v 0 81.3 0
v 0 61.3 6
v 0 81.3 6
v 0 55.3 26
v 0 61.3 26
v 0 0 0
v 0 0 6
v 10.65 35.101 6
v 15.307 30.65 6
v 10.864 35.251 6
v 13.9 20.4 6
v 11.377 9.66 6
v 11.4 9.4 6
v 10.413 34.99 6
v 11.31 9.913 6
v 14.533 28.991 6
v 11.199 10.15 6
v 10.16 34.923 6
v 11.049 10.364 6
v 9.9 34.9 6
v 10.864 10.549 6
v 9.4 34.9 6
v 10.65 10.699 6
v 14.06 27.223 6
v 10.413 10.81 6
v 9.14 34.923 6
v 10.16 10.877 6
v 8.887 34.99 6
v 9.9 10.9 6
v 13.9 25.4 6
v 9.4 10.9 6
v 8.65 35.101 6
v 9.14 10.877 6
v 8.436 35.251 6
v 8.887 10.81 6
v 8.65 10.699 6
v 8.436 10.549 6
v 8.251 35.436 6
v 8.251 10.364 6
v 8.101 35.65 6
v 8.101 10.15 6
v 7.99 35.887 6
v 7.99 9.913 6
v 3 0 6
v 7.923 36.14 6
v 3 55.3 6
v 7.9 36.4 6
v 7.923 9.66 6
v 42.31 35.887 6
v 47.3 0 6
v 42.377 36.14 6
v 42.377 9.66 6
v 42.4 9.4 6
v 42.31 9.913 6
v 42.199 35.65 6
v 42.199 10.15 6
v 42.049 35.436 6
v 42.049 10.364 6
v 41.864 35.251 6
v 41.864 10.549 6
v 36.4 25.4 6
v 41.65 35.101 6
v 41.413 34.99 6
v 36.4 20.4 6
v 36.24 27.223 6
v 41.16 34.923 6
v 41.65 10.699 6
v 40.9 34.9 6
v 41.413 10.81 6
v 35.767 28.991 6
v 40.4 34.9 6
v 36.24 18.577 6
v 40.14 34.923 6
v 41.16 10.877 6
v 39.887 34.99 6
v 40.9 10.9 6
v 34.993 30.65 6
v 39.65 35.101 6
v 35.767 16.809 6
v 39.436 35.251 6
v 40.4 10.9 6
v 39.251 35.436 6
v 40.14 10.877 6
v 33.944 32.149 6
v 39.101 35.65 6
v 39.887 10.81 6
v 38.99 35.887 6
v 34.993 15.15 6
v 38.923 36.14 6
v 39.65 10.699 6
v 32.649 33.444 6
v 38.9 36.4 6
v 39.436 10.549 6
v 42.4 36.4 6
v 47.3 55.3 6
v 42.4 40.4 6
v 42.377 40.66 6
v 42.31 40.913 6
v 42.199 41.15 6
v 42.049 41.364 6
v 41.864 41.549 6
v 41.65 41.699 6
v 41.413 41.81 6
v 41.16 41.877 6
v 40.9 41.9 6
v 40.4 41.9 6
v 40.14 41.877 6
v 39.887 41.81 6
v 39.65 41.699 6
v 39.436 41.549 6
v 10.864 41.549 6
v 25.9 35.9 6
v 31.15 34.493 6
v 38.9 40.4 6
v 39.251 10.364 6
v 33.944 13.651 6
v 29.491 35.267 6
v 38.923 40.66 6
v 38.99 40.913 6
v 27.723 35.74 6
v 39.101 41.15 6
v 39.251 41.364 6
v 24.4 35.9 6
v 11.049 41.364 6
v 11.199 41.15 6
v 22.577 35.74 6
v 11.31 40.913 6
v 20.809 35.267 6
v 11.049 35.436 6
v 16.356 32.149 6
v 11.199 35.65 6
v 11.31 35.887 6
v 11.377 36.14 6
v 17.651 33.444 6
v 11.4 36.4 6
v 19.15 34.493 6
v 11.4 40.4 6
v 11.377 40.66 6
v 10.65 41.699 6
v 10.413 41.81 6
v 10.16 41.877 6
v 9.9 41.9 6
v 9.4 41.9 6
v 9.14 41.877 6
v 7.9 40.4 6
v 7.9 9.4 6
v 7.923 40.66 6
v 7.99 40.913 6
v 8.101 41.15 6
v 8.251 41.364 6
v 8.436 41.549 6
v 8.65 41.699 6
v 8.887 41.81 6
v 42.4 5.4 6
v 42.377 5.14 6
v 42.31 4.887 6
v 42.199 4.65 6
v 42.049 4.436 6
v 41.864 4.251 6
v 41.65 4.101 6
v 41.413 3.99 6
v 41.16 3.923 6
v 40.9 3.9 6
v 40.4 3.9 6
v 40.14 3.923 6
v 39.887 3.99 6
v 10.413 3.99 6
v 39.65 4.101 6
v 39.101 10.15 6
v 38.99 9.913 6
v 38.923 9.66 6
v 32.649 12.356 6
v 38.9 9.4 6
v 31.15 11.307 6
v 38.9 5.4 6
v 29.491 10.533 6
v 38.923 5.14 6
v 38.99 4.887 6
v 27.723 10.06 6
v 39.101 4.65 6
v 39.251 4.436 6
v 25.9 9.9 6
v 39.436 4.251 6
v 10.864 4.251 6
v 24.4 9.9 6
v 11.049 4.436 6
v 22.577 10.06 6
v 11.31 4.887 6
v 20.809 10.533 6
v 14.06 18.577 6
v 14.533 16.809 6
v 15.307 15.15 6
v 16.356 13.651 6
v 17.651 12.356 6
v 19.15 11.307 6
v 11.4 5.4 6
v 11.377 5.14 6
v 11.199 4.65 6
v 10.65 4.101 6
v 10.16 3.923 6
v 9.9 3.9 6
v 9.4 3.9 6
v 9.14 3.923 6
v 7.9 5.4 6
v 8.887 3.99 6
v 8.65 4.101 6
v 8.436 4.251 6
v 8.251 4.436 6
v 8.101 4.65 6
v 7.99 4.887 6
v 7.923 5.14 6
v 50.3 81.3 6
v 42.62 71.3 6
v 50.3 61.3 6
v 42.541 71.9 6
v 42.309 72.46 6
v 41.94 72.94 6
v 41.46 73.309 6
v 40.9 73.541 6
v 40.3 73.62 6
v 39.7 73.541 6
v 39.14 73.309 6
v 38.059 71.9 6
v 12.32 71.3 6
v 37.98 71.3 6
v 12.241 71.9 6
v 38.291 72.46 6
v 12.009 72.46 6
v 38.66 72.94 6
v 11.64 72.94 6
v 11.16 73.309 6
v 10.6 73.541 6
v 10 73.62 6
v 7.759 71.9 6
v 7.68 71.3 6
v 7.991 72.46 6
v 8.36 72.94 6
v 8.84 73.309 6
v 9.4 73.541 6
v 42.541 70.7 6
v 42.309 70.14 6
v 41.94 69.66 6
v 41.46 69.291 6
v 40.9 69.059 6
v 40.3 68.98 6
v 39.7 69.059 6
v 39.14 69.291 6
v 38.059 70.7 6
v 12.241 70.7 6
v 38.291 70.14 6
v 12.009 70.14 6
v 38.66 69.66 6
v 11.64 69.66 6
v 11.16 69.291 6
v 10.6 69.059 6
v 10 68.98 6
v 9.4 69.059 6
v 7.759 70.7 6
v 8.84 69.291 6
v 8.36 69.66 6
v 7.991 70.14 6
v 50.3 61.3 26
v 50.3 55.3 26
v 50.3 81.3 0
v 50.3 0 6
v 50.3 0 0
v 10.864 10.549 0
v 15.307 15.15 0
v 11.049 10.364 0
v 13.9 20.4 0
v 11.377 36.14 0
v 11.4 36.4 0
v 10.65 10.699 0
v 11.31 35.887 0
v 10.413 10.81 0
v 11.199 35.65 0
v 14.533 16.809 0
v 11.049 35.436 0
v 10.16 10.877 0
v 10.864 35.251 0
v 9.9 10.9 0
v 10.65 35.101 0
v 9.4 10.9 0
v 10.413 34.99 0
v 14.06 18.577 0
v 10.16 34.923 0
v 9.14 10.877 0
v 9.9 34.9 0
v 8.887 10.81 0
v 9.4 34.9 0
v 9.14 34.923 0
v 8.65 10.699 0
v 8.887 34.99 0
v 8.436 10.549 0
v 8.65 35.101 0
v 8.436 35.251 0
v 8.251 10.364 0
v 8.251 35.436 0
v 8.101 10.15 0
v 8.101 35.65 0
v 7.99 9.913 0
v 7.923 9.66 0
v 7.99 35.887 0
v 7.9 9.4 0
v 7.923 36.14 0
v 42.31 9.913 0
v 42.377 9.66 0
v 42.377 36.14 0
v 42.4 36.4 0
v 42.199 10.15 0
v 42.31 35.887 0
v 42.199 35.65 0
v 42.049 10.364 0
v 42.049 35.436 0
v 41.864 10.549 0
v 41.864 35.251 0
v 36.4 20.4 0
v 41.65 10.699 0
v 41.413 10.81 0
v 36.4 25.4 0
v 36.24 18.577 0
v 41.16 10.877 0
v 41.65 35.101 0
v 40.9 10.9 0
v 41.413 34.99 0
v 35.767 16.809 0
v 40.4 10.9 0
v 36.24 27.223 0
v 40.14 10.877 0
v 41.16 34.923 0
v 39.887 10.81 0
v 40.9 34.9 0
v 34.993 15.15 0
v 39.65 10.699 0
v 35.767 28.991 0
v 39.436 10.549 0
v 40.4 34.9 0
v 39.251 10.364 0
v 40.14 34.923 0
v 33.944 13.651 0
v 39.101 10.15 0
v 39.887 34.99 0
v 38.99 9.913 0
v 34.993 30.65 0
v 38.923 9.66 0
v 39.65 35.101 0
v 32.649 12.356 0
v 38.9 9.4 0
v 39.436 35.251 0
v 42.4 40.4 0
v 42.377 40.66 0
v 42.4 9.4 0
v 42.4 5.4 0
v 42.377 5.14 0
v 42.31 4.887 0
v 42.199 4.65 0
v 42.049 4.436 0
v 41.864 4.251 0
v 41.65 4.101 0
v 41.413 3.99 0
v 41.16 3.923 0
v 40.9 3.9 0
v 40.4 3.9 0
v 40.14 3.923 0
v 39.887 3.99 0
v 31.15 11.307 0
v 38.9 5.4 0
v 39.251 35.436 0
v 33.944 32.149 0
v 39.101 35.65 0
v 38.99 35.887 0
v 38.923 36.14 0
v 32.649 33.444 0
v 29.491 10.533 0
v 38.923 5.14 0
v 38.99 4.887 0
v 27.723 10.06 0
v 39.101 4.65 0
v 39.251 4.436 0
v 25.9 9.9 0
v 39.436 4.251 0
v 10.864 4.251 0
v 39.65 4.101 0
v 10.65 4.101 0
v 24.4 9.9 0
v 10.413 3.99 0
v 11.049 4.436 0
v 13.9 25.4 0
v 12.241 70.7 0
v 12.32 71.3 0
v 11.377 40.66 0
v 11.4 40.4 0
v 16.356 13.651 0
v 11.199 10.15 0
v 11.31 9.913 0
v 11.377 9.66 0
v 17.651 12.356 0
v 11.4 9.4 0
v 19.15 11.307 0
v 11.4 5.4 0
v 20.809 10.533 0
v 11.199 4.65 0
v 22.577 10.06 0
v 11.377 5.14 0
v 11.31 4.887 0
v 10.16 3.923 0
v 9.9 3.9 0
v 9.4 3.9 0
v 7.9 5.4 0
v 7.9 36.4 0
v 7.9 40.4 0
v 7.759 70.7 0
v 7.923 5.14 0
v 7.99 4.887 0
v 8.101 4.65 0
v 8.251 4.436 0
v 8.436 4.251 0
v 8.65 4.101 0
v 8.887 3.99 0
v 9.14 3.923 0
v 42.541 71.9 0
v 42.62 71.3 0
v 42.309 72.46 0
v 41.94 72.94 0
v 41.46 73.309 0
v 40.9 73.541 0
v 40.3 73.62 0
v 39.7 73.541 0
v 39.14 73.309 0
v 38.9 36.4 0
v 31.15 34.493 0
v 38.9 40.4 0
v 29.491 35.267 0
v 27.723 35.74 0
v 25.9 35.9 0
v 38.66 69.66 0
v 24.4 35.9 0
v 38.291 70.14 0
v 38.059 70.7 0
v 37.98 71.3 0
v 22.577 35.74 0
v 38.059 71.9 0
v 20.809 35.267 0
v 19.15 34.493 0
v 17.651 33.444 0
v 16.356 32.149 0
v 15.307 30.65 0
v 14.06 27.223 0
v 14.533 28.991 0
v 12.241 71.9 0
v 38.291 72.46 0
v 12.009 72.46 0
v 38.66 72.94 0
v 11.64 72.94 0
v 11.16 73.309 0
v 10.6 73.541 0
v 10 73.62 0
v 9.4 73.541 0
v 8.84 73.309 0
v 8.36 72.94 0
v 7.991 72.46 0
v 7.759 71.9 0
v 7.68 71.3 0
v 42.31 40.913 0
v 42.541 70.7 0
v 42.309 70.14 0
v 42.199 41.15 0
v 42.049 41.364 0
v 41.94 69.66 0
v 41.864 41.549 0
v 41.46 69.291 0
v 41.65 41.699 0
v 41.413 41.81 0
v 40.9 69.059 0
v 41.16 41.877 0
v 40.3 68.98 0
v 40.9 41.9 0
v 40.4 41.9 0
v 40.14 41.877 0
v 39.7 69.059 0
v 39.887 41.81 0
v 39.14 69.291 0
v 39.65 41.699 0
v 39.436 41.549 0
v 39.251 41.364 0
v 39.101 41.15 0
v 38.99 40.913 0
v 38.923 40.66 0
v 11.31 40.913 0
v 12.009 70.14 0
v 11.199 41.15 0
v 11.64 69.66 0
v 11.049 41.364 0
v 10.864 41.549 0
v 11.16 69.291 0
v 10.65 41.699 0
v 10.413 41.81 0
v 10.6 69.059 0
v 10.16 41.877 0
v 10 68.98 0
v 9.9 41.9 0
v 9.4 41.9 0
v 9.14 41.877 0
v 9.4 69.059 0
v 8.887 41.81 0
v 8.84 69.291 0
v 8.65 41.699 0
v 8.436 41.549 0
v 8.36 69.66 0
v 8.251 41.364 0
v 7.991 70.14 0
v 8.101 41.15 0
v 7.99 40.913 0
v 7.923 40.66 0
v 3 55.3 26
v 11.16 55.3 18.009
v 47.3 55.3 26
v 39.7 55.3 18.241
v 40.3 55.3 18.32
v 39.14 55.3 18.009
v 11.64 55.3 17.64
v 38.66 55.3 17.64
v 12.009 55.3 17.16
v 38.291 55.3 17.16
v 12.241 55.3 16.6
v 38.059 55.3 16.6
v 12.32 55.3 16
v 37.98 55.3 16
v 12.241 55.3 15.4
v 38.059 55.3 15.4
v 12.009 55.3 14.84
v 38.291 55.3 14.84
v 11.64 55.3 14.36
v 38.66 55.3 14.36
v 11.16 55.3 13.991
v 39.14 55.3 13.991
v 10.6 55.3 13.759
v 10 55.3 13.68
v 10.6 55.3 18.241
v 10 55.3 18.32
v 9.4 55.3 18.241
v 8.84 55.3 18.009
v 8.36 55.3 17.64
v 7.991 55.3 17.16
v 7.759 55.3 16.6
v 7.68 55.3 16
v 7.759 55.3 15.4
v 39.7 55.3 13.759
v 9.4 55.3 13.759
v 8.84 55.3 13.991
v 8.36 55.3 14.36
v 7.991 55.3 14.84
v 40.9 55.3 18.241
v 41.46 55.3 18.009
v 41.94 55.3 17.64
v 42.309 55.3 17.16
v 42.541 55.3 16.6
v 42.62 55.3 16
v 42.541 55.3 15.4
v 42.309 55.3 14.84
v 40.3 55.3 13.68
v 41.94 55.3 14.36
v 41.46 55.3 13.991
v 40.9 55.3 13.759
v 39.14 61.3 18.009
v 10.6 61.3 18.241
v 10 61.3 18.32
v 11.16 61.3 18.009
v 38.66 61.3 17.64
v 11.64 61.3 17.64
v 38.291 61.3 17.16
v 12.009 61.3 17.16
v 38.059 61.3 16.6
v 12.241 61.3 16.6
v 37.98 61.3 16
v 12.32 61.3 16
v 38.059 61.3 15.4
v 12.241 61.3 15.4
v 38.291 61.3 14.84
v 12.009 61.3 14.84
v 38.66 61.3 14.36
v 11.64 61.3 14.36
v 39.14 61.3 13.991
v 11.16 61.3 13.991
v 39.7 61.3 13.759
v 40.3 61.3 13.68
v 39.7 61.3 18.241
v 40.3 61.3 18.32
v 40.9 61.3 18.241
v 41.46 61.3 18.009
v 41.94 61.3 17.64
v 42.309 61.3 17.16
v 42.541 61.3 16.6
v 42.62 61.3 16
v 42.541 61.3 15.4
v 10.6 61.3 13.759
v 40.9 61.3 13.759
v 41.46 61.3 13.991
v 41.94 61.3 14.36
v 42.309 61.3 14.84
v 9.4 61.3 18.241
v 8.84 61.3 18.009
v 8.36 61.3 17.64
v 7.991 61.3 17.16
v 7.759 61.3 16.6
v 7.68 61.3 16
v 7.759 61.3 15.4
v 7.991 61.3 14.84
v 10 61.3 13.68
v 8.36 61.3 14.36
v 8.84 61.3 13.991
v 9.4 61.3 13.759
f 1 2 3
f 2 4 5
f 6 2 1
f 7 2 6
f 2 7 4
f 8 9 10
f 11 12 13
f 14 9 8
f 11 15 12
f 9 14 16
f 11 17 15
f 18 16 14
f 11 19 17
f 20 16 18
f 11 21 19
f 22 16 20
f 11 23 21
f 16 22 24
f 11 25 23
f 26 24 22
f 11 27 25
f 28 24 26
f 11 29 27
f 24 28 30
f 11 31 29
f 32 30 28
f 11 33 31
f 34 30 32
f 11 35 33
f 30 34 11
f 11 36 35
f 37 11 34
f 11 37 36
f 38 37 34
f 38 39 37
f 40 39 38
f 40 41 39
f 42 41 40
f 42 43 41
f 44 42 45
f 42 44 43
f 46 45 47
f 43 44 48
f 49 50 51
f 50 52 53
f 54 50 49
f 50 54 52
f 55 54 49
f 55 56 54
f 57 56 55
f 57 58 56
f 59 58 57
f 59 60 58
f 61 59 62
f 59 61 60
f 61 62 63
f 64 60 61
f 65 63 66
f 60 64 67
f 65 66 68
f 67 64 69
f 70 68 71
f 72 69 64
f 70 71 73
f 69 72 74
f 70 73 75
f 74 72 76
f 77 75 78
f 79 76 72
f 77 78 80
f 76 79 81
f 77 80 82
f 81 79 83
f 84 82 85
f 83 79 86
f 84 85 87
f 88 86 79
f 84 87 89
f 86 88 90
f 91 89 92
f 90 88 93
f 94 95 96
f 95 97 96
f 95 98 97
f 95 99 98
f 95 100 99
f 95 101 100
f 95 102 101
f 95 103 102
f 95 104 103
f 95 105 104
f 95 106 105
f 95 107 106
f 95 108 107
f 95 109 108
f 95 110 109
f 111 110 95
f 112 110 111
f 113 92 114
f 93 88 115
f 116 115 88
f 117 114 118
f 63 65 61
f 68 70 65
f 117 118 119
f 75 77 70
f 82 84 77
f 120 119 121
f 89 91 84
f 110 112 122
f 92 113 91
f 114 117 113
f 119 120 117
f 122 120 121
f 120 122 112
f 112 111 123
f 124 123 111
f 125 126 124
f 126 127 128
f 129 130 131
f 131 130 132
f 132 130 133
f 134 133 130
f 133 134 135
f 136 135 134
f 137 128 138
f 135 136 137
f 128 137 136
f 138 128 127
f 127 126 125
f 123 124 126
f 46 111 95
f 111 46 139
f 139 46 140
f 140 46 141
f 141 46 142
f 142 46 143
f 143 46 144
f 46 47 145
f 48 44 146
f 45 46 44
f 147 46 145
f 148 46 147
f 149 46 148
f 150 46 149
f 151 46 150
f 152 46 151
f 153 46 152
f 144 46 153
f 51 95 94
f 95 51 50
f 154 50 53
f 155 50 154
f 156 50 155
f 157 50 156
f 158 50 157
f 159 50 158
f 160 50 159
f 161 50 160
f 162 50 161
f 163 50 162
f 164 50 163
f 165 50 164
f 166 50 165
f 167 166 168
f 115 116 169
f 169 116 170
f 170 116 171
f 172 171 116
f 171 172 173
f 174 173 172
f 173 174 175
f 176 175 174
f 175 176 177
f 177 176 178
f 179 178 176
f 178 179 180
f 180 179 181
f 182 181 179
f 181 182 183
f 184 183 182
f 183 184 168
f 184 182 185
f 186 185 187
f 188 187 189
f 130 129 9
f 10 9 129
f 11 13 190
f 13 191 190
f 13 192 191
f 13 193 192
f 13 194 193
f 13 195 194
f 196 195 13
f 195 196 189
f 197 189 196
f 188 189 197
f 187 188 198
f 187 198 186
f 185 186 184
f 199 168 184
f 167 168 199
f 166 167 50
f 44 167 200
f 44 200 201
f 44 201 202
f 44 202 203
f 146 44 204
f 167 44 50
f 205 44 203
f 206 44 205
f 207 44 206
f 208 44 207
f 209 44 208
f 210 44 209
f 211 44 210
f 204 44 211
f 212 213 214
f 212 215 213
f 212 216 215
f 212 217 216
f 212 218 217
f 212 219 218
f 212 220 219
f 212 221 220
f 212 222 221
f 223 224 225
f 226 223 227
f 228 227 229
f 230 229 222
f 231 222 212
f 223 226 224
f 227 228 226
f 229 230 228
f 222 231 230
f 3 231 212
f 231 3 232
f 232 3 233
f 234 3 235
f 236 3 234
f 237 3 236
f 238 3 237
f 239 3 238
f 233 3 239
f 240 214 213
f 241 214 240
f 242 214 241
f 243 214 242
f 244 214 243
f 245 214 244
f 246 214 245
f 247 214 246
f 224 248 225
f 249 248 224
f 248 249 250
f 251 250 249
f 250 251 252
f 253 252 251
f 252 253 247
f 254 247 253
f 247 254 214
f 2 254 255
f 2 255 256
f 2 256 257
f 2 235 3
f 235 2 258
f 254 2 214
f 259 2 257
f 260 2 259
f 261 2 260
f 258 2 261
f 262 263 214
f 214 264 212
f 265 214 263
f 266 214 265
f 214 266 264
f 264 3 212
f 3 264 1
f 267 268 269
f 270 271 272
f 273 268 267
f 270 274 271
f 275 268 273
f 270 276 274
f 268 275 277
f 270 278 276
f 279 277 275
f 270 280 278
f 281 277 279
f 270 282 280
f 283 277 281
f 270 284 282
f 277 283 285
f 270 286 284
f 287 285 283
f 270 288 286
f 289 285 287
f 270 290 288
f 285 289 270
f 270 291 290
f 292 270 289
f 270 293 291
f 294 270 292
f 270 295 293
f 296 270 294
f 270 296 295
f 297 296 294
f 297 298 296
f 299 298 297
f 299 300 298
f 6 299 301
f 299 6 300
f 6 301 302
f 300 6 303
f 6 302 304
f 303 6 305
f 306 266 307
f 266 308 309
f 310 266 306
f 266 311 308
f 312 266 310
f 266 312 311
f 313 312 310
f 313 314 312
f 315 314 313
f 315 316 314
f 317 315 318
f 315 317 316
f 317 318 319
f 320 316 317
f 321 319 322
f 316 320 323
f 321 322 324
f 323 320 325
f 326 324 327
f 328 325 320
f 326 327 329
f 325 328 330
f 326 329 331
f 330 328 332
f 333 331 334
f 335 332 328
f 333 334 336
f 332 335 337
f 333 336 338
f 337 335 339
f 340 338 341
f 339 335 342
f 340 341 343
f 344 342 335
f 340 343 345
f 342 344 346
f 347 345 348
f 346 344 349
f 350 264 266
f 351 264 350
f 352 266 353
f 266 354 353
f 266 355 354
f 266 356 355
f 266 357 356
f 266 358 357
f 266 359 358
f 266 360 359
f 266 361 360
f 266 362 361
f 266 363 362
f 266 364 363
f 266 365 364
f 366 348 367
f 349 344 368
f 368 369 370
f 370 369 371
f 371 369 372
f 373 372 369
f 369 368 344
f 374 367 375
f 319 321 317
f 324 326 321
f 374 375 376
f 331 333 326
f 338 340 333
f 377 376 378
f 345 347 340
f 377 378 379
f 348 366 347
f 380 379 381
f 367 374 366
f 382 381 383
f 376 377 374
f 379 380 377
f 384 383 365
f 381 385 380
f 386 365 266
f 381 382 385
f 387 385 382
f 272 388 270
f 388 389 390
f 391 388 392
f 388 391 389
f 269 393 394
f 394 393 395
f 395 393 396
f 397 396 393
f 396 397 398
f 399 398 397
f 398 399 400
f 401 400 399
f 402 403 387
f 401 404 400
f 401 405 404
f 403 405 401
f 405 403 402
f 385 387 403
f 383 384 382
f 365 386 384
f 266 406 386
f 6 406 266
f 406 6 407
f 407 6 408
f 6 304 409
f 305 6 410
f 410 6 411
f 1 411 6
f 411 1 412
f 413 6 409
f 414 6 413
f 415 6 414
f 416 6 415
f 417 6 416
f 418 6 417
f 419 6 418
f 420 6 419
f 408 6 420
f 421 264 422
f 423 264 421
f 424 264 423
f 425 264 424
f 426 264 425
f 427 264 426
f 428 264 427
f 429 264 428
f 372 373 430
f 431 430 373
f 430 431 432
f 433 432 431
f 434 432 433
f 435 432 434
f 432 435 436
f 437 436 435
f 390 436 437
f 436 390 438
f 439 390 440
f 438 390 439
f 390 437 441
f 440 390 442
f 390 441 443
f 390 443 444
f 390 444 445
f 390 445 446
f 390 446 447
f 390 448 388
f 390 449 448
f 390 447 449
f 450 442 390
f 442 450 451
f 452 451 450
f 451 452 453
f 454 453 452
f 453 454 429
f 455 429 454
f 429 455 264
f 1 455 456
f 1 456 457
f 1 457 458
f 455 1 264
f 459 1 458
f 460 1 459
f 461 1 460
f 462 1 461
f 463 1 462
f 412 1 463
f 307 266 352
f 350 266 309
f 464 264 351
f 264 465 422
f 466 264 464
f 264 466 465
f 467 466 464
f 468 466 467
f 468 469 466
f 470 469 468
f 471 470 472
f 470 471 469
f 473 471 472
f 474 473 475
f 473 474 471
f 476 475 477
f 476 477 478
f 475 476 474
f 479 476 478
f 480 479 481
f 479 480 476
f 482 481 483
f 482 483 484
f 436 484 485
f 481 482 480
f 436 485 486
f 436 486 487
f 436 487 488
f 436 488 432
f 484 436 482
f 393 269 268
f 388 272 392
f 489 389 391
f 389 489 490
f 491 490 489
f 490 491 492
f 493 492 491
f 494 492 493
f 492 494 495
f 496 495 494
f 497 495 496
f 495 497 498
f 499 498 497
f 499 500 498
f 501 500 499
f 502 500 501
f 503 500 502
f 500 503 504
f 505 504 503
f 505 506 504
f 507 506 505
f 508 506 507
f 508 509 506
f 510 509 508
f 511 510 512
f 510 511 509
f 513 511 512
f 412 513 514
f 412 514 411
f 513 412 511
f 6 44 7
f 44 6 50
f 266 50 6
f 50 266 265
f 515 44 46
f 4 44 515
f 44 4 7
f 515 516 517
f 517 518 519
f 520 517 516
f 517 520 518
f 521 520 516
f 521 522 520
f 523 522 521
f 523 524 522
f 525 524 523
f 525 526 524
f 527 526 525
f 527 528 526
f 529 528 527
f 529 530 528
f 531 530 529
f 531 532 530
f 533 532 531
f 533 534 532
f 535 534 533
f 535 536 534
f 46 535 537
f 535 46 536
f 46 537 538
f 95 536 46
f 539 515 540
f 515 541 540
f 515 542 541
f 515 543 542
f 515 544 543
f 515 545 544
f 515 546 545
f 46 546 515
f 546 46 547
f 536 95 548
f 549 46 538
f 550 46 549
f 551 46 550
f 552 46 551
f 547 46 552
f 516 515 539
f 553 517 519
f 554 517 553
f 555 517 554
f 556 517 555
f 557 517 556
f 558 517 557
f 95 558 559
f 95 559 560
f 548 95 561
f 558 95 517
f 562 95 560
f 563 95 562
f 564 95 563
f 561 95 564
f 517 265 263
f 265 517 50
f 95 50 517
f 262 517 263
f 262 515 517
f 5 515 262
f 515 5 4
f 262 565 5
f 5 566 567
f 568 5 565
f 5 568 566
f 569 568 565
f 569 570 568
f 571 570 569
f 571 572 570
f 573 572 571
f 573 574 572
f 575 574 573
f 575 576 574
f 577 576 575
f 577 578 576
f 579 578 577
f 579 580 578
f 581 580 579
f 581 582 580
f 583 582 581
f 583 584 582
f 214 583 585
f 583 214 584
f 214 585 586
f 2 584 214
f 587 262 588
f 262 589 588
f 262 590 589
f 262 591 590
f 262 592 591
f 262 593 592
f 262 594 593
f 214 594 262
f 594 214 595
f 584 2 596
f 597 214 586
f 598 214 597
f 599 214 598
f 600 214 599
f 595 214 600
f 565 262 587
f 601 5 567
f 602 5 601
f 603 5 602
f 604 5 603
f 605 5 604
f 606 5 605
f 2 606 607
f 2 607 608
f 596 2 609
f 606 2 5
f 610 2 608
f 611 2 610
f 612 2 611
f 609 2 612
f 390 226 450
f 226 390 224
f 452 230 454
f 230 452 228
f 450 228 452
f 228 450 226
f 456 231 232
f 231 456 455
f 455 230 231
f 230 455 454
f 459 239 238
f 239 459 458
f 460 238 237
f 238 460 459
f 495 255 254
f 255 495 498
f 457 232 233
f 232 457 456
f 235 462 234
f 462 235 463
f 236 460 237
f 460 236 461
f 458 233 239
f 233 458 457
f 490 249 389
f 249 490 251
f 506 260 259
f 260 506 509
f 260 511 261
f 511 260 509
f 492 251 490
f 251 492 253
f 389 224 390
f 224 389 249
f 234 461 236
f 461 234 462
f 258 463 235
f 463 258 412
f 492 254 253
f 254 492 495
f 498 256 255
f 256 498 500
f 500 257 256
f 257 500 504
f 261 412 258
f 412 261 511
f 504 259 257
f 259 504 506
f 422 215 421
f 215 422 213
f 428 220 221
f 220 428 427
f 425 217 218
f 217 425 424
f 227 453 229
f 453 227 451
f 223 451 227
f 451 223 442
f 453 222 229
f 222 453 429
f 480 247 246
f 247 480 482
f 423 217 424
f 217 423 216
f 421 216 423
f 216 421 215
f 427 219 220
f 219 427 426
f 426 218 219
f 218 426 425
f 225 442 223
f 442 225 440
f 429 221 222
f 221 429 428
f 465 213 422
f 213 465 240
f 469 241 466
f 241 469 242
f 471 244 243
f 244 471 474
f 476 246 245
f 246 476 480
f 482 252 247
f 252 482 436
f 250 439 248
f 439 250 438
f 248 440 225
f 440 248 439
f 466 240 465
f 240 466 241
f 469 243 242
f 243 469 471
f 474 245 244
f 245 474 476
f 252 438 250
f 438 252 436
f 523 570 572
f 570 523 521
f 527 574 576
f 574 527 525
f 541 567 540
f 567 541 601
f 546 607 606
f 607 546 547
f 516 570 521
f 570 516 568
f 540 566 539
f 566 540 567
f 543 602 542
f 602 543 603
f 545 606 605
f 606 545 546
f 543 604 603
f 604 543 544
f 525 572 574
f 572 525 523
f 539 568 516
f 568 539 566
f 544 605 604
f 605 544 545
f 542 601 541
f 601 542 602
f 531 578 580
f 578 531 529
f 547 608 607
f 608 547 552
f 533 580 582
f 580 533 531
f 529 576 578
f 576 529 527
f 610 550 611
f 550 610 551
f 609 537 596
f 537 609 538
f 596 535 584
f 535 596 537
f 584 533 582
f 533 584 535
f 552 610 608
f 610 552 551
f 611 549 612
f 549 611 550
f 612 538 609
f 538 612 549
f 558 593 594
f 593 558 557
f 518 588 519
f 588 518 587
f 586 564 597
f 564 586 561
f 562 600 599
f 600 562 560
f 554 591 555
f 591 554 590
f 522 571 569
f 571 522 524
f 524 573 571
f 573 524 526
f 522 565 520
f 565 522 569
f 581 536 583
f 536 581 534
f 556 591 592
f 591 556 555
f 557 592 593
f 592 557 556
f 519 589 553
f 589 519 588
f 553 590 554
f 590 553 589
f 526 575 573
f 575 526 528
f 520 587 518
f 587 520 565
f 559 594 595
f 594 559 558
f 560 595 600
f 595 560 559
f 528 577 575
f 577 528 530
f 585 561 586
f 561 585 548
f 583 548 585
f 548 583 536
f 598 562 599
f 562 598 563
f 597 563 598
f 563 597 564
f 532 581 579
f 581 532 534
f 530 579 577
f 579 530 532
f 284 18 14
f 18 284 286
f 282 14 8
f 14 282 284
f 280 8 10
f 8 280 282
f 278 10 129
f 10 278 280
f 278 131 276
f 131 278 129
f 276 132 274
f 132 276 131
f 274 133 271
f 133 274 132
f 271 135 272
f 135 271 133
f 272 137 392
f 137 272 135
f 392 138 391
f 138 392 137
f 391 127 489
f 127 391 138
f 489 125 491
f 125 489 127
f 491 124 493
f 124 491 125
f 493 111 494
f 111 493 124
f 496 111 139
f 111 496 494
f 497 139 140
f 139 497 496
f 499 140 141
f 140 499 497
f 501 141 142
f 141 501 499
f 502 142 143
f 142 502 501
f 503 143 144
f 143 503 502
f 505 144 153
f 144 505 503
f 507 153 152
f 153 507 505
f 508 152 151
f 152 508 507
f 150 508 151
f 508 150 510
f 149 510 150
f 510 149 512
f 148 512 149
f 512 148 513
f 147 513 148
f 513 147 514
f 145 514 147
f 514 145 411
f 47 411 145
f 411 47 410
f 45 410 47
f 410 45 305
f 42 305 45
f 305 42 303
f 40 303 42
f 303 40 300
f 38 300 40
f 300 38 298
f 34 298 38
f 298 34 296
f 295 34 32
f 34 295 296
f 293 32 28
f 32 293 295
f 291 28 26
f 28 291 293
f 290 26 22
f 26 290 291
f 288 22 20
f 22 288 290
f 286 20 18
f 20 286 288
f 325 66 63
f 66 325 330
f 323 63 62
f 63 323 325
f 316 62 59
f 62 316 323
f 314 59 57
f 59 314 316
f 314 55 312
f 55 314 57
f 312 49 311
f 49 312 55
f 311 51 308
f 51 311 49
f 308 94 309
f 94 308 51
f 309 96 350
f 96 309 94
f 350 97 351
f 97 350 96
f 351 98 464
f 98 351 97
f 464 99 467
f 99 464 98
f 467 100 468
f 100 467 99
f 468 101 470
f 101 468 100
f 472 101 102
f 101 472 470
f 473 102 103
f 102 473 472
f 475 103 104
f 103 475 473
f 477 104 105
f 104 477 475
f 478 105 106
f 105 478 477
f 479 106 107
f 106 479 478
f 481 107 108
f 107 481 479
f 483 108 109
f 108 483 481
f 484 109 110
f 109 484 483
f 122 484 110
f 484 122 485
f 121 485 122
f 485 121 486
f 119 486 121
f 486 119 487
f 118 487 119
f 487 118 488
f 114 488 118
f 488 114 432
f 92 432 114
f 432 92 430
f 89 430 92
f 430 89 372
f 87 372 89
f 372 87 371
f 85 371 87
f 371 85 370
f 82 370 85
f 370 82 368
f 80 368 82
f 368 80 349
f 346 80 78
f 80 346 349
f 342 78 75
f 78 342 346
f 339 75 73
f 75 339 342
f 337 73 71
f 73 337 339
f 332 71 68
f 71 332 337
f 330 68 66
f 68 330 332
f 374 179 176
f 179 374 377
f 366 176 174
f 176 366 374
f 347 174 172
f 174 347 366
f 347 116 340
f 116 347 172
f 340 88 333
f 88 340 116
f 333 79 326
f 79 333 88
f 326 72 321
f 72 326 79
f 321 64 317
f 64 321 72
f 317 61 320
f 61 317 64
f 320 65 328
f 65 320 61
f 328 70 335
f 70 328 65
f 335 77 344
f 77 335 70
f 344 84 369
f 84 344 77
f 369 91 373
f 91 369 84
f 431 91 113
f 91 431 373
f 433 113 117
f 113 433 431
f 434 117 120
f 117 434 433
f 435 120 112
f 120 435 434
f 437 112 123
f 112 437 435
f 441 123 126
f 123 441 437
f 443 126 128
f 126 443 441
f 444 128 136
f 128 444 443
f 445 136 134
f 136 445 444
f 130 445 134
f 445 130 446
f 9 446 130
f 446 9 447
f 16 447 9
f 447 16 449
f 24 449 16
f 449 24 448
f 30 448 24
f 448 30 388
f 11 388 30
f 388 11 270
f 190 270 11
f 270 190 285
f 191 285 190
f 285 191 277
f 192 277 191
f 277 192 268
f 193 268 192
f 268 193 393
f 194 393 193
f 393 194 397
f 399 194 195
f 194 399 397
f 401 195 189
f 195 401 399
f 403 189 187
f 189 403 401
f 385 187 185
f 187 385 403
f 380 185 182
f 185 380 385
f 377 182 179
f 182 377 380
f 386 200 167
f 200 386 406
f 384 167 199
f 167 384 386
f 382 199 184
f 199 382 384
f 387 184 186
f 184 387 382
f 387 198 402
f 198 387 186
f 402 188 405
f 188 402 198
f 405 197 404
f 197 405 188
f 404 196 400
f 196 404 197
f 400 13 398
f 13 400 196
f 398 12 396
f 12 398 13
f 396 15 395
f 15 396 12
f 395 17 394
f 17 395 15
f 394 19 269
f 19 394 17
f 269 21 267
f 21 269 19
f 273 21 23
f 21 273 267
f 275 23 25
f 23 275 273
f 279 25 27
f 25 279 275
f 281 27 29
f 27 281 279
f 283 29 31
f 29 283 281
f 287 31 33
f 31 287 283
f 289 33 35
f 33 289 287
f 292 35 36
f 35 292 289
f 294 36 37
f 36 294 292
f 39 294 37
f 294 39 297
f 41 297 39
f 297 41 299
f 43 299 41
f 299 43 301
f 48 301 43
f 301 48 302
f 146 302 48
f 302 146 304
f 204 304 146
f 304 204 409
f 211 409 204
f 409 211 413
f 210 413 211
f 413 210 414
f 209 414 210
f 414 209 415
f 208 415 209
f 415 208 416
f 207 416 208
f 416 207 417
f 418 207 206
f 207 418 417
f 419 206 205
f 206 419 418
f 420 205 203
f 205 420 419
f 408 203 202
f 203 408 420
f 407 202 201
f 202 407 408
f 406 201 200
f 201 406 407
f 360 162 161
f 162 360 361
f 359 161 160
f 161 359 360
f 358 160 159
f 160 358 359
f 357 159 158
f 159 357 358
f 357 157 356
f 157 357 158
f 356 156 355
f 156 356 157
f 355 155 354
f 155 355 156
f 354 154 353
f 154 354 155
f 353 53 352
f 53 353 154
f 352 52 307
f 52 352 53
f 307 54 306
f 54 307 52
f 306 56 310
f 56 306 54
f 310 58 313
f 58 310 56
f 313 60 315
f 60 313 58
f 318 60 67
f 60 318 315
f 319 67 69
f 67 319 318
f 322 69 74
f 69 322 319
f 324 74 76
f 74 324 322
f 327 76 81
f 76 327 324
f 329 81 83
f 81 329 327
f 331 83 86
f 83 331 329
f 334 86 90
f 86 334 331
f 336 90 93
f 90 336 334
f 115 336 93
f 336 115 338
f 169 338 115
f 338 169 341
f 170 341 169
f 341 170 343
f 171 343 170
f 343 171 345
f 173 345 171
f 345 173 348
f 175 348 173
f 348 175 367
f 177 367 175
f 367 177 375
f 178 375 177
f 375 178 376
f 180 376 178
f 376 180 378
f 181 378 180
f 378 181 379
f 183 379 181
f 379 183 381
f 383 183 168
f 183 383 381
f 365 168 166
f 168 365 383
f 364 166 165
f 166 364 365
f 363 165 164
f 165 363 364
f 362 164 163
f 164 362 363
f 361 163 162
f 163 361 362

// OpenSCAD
// file: scad-utils/mirror.scad
// Laser Tunnel -- Angled Mirror Holder
// Adrian McCarthy 2022

// A larger angle makes a wider cone of light. (degrees)
Angle = 5; // [3:1:20]

// The mirror should not be wider than the hub of the fan. (mm)
Mirror_Diameter = 25.4; // [20:0.2:27]

// The mirror should be thin and light. (mm)
Mirror_Thickness = 1.75; // [1:0.25:2]

// Some dimensions may be optimized for your printer's nozzle size, but the default value should work for most. (mm)
Nozzle_Diameter = 0.4;  // [0.1:0.1:0.8]

module angled_mirror_holder(angle=5, mirror_d=25.4, mirror_th=1.75, nozzle_d=0.4) {
    h = mirror_d;
    inner_d = mirror_d + nozzle_d;
    outer_d = inner_d + 2;
    box = sqrt(2)*outer_d;
    intersection() {
        r = inner_d/2;
        translate([r, 0, 0]) rotate([0, angle, 0]) translate([-r, 0, 0])
        difference() {
            translate([0, 0, mirror_th-h]) cylinder(d=outer_d, h=h);
            translate([0, 0, 0.1]) cylinder(d=inner_d, h=h);
        }

        translate([-box/2, -box/2, 0]) cube(box);
    }
}

angled_mirror_holder(Angle, Mirror_Diameter, Mirror_Thickness, Nozzle_Diameter, $fn=92);
// file: scad-utils/morphology.scad
// Copyright (c) 2013 Oskar Linde. All rights reserved.
// License: BSD
//
// This library contains basic 2D morphology operations
//
// outset(d=1)            - creates a polygon at an offset d outside a 2D shape
// inset(d=1)             - creates a polygon at an offset d inside a 2D shape
// fillet(r=1)            - adds fillets of radius r to all concave corners of a 2D shape
// rounding(r=1)          - adds rounding to all convex corners of a 2D shape
// shell(d,center=false)  - makes a shell of width d along the edge of a 2D shape
//                        - positive values of d places the shell on the outside
//                        - negative values of d places the shell on the inside
//                        - center=true and positive d places the shell centered on the edge

module outset(d=1) {
	// Bug workaround for older OpenSCAD versions
	if (version_num() < 20130424) render() outset_extruded(d) children();
	else minkowski() {
		circle(r=d);
		children();
	}
}

module outset_extruded(d=1) {
   projection(cut=true) minkowski() {
        cylinder(r=d);
        linear_extrude(center=true) children();
   }
}

module inset(d=1) {
	 render() inverse() outset(d=d) inverse() children();
}

module fillet(r=1) {
	inset(d=r) render() outset(d=r) children();
}

module rounding(r=1) {
	outset(d=r) inset(d=r) children();
}

module shell(d,center=false) {
	if (center && d > 0) {
		difference() {
			outset(d=d/2) children();
			inset(d=d/2) children();
		}
	}
	if (!center && d > 0) {
		difference() {
			outset(d=d) children();
			children();
		}
	}
	if (!center && d < 0) {
		difference() {
			children();
			inset(d=-d) children();
		}
	}
	if (d == 0) children();
}


// Below are for internal use only

module inverse() {
	difference() {
		square(1e5,center=true);
		children();
	}
}


// TEST CODE

use <mirror.scad>

module arrow(l=1,w=.6,t=0.15) {
	mirror_y() polygon([[0,0],[l,0],[l-w/2,w/2],[l-w/2-sqrt(2)*t,w/2],[l-t/2-sqrt(2)*t,t/2],[0,t/2]]);
}

module shape() {
	polygon([[0,0],[1,0],[1.5,1],[2.5,1],[2,-1],[0,-1]]);
}

if(0) assign($fn=32) {

	for (p = [0:10*3-1]) assign(o=floor(p/3)) {
		translate([(p%3)*2.5,-o*3]) {
			//%if (p % 3 == 1) translate([0,0,1]) shape();
			if (p % 3 == 0) shape();
			if (p % 3 == 1) translate([0.6,0]) arrow();
			if (p % 3 == 2) {
				if (o == 0) inset(d=0.3) shape();
				if (o == 1) outset(d=0.3) shape();
				if (o == 2) rounding(r=0.3) shape();
				if (o == 3) fillet(r=0.3) shape();
				if (o == 4) shell(d=0.3) shape();
				if (o == 5) shell(d=-0.3) shape();
				if (o == 6) shell(d=0.3,center=true) shape();
				if (o == 7) rounding(r=0.3) fillet(r=0.3) shape();
				if (o == 8) shell(d=0.3,center=true) fillet(r=0.3) rounding(r=0.3) shape();
				if (o == 9) shell(d=-0.3) fillet(r=0.3) rounding(r=0.3) shape();
			}
		}
	}
}
// main file
/* Name: NEMA17 Motor Bracket for 2020 or 2040
 * Version: 1
 * Author: Jamie Bainbridge <jamie.bainbridge@gmail.com>
 * License: CC BY-SA-4.0 <http://creativecommons.org/licenses/by-sa/4.0/>
 */

// $fn = $preview ? 36 : 180
$fn = 36; // preview: 36, render: 180

// https://github.com/openscad/scad-utils
include <scad-utils/morphology.scad>

module mycircle_outer(diameter) {
    rounding(r=diameter/2) square([diameter], center=true);
};

module mycyl_outer(diameter,height) {
    rounding(r=diameter/2) cube([diameter,diameter,height], center=true);
};

module cylinder_outer(diameter,height,fn=24){
    radius = diameter/2;
    fudge = 1/cos(180/fn);
    cylinder(h=height,r=radius*fudge,$fn=fn);}

// NEMA17 Specs
motor_body_width = 42.3;
motor_head_diam = 22;    // circle on top of motor
motor_screw_gap = 31;    // distance between screw holes

motor_slide_adj = 3.5;   // adjustment along Y axis

rail_system = 20;        // 2020 extrusion
plate_thick = 6;
rail_bolt_head = 4;      // M4

plate_width = motor_body_width + plate_thick + 2;  // along X
plate_depth = motor_body_width + rail_system + plate_thick+ rail_bolt_head + 9;  // along Y
plate_height = rail_system + plate_thick; // along Z

echo(plate_depth = plate_depth);
echo(plate_width = plate_width);

module motor_hole(height) {
    translate([0,0,-1]) linear_extrude(height + 2) {
        union() {
            // motor hole
            translate([motor_body_width/2,(motor_body_width/2)+(motor_slide_adj/2)]) rounding(r=(motor_head_diam/2)-0.5) square([motor_head_diam+0.5,motor_head_diam+motor_slide_adj+0.5],center=true);

            // motor bolt holes
            inset = (motor_body_width - motor_screw_gap) / 2;
            for (xoffset = [0:1]) {
                for (yoffset = [0:1]) {
                    translate([inset+(motor_screw_gap*xoffset),inset+(motor_slide_adj/2)+(motor_screw_gap*yoffset)]) rounding(r=1.5) square([3.5,3.5+motor_slide_adj], center=true); // 3.5 for M3
                };
            };
        };
    };
};

// angle piece
angle_depth = plate_depth-rail_system-plate_thick;

angle_points = [
    [0,0,0], //0
    [(plate_thick/2),0,0], // 1
    [0,angle_depth,0], //2
    [(plate_thick/2),angle_depth,0], // 3
    [0,angle_depth,rail_system], //4
    [(plate_thick/2),angle_depth,rail_system], //5
];
angle_faces = [
    [0,4,5,1], // front slope
    [2,3,5,4], // back
    [0,2,4],   // left side
    [1,5,3],   // right side
    [0,1,3,2]  // bottom
];

difference() {
    // the bracket
    union() {
        // base
        cube([plate_width,plate_depth,plate_thick]);
        // left slope
        translate([0,0,plate_thick-0]) polyhedron(angle_points,angle_faces);
        // right slope
        translate([plate_width-(plate_thick/2),0,plate_thick-0]) polyhedron(angle_points,angle_faces);
        // back plate
        translate([0,plate_depth-rail_system-plate_thick,0]) cube([plate_width,plate_thick,plate_height]);
    };

    // motor holes
    #translate([(plate_width - motor_body_width) / 2,0,0]) motor_hole(plate_thick);

    // top screw holes
    #translate([0,0,-1]) {
        union () {
            translate([(rail_system/2),plate_depth-(rail_system/2)]) cylinder_outer(4.6,plate_thick+2);
            translate([plate_width-(rail_system/2),plate_depth-(rail_system/2)]) cylinder_outer(4.6,plate_thick+2); // 4.6 for M4
        };
    };

    // side screw holes
    #translate([0,-1,0]) rotate ([90,0,0]) {
        union () {
            translate([rail_system/2, plate_thick+(rail_system/2),-(plate_depth-rail_system+2)]) cylinder_outer(4.6,plate_thick+2);
            translate([plate_width-(rail_system/2), plate_thick+(rail_system/2),-(plate_depth-rail_system+2)]) cylinder_outer(4.6,plate_thick+2);
        };
    };
};

// vim: ft=cpp
